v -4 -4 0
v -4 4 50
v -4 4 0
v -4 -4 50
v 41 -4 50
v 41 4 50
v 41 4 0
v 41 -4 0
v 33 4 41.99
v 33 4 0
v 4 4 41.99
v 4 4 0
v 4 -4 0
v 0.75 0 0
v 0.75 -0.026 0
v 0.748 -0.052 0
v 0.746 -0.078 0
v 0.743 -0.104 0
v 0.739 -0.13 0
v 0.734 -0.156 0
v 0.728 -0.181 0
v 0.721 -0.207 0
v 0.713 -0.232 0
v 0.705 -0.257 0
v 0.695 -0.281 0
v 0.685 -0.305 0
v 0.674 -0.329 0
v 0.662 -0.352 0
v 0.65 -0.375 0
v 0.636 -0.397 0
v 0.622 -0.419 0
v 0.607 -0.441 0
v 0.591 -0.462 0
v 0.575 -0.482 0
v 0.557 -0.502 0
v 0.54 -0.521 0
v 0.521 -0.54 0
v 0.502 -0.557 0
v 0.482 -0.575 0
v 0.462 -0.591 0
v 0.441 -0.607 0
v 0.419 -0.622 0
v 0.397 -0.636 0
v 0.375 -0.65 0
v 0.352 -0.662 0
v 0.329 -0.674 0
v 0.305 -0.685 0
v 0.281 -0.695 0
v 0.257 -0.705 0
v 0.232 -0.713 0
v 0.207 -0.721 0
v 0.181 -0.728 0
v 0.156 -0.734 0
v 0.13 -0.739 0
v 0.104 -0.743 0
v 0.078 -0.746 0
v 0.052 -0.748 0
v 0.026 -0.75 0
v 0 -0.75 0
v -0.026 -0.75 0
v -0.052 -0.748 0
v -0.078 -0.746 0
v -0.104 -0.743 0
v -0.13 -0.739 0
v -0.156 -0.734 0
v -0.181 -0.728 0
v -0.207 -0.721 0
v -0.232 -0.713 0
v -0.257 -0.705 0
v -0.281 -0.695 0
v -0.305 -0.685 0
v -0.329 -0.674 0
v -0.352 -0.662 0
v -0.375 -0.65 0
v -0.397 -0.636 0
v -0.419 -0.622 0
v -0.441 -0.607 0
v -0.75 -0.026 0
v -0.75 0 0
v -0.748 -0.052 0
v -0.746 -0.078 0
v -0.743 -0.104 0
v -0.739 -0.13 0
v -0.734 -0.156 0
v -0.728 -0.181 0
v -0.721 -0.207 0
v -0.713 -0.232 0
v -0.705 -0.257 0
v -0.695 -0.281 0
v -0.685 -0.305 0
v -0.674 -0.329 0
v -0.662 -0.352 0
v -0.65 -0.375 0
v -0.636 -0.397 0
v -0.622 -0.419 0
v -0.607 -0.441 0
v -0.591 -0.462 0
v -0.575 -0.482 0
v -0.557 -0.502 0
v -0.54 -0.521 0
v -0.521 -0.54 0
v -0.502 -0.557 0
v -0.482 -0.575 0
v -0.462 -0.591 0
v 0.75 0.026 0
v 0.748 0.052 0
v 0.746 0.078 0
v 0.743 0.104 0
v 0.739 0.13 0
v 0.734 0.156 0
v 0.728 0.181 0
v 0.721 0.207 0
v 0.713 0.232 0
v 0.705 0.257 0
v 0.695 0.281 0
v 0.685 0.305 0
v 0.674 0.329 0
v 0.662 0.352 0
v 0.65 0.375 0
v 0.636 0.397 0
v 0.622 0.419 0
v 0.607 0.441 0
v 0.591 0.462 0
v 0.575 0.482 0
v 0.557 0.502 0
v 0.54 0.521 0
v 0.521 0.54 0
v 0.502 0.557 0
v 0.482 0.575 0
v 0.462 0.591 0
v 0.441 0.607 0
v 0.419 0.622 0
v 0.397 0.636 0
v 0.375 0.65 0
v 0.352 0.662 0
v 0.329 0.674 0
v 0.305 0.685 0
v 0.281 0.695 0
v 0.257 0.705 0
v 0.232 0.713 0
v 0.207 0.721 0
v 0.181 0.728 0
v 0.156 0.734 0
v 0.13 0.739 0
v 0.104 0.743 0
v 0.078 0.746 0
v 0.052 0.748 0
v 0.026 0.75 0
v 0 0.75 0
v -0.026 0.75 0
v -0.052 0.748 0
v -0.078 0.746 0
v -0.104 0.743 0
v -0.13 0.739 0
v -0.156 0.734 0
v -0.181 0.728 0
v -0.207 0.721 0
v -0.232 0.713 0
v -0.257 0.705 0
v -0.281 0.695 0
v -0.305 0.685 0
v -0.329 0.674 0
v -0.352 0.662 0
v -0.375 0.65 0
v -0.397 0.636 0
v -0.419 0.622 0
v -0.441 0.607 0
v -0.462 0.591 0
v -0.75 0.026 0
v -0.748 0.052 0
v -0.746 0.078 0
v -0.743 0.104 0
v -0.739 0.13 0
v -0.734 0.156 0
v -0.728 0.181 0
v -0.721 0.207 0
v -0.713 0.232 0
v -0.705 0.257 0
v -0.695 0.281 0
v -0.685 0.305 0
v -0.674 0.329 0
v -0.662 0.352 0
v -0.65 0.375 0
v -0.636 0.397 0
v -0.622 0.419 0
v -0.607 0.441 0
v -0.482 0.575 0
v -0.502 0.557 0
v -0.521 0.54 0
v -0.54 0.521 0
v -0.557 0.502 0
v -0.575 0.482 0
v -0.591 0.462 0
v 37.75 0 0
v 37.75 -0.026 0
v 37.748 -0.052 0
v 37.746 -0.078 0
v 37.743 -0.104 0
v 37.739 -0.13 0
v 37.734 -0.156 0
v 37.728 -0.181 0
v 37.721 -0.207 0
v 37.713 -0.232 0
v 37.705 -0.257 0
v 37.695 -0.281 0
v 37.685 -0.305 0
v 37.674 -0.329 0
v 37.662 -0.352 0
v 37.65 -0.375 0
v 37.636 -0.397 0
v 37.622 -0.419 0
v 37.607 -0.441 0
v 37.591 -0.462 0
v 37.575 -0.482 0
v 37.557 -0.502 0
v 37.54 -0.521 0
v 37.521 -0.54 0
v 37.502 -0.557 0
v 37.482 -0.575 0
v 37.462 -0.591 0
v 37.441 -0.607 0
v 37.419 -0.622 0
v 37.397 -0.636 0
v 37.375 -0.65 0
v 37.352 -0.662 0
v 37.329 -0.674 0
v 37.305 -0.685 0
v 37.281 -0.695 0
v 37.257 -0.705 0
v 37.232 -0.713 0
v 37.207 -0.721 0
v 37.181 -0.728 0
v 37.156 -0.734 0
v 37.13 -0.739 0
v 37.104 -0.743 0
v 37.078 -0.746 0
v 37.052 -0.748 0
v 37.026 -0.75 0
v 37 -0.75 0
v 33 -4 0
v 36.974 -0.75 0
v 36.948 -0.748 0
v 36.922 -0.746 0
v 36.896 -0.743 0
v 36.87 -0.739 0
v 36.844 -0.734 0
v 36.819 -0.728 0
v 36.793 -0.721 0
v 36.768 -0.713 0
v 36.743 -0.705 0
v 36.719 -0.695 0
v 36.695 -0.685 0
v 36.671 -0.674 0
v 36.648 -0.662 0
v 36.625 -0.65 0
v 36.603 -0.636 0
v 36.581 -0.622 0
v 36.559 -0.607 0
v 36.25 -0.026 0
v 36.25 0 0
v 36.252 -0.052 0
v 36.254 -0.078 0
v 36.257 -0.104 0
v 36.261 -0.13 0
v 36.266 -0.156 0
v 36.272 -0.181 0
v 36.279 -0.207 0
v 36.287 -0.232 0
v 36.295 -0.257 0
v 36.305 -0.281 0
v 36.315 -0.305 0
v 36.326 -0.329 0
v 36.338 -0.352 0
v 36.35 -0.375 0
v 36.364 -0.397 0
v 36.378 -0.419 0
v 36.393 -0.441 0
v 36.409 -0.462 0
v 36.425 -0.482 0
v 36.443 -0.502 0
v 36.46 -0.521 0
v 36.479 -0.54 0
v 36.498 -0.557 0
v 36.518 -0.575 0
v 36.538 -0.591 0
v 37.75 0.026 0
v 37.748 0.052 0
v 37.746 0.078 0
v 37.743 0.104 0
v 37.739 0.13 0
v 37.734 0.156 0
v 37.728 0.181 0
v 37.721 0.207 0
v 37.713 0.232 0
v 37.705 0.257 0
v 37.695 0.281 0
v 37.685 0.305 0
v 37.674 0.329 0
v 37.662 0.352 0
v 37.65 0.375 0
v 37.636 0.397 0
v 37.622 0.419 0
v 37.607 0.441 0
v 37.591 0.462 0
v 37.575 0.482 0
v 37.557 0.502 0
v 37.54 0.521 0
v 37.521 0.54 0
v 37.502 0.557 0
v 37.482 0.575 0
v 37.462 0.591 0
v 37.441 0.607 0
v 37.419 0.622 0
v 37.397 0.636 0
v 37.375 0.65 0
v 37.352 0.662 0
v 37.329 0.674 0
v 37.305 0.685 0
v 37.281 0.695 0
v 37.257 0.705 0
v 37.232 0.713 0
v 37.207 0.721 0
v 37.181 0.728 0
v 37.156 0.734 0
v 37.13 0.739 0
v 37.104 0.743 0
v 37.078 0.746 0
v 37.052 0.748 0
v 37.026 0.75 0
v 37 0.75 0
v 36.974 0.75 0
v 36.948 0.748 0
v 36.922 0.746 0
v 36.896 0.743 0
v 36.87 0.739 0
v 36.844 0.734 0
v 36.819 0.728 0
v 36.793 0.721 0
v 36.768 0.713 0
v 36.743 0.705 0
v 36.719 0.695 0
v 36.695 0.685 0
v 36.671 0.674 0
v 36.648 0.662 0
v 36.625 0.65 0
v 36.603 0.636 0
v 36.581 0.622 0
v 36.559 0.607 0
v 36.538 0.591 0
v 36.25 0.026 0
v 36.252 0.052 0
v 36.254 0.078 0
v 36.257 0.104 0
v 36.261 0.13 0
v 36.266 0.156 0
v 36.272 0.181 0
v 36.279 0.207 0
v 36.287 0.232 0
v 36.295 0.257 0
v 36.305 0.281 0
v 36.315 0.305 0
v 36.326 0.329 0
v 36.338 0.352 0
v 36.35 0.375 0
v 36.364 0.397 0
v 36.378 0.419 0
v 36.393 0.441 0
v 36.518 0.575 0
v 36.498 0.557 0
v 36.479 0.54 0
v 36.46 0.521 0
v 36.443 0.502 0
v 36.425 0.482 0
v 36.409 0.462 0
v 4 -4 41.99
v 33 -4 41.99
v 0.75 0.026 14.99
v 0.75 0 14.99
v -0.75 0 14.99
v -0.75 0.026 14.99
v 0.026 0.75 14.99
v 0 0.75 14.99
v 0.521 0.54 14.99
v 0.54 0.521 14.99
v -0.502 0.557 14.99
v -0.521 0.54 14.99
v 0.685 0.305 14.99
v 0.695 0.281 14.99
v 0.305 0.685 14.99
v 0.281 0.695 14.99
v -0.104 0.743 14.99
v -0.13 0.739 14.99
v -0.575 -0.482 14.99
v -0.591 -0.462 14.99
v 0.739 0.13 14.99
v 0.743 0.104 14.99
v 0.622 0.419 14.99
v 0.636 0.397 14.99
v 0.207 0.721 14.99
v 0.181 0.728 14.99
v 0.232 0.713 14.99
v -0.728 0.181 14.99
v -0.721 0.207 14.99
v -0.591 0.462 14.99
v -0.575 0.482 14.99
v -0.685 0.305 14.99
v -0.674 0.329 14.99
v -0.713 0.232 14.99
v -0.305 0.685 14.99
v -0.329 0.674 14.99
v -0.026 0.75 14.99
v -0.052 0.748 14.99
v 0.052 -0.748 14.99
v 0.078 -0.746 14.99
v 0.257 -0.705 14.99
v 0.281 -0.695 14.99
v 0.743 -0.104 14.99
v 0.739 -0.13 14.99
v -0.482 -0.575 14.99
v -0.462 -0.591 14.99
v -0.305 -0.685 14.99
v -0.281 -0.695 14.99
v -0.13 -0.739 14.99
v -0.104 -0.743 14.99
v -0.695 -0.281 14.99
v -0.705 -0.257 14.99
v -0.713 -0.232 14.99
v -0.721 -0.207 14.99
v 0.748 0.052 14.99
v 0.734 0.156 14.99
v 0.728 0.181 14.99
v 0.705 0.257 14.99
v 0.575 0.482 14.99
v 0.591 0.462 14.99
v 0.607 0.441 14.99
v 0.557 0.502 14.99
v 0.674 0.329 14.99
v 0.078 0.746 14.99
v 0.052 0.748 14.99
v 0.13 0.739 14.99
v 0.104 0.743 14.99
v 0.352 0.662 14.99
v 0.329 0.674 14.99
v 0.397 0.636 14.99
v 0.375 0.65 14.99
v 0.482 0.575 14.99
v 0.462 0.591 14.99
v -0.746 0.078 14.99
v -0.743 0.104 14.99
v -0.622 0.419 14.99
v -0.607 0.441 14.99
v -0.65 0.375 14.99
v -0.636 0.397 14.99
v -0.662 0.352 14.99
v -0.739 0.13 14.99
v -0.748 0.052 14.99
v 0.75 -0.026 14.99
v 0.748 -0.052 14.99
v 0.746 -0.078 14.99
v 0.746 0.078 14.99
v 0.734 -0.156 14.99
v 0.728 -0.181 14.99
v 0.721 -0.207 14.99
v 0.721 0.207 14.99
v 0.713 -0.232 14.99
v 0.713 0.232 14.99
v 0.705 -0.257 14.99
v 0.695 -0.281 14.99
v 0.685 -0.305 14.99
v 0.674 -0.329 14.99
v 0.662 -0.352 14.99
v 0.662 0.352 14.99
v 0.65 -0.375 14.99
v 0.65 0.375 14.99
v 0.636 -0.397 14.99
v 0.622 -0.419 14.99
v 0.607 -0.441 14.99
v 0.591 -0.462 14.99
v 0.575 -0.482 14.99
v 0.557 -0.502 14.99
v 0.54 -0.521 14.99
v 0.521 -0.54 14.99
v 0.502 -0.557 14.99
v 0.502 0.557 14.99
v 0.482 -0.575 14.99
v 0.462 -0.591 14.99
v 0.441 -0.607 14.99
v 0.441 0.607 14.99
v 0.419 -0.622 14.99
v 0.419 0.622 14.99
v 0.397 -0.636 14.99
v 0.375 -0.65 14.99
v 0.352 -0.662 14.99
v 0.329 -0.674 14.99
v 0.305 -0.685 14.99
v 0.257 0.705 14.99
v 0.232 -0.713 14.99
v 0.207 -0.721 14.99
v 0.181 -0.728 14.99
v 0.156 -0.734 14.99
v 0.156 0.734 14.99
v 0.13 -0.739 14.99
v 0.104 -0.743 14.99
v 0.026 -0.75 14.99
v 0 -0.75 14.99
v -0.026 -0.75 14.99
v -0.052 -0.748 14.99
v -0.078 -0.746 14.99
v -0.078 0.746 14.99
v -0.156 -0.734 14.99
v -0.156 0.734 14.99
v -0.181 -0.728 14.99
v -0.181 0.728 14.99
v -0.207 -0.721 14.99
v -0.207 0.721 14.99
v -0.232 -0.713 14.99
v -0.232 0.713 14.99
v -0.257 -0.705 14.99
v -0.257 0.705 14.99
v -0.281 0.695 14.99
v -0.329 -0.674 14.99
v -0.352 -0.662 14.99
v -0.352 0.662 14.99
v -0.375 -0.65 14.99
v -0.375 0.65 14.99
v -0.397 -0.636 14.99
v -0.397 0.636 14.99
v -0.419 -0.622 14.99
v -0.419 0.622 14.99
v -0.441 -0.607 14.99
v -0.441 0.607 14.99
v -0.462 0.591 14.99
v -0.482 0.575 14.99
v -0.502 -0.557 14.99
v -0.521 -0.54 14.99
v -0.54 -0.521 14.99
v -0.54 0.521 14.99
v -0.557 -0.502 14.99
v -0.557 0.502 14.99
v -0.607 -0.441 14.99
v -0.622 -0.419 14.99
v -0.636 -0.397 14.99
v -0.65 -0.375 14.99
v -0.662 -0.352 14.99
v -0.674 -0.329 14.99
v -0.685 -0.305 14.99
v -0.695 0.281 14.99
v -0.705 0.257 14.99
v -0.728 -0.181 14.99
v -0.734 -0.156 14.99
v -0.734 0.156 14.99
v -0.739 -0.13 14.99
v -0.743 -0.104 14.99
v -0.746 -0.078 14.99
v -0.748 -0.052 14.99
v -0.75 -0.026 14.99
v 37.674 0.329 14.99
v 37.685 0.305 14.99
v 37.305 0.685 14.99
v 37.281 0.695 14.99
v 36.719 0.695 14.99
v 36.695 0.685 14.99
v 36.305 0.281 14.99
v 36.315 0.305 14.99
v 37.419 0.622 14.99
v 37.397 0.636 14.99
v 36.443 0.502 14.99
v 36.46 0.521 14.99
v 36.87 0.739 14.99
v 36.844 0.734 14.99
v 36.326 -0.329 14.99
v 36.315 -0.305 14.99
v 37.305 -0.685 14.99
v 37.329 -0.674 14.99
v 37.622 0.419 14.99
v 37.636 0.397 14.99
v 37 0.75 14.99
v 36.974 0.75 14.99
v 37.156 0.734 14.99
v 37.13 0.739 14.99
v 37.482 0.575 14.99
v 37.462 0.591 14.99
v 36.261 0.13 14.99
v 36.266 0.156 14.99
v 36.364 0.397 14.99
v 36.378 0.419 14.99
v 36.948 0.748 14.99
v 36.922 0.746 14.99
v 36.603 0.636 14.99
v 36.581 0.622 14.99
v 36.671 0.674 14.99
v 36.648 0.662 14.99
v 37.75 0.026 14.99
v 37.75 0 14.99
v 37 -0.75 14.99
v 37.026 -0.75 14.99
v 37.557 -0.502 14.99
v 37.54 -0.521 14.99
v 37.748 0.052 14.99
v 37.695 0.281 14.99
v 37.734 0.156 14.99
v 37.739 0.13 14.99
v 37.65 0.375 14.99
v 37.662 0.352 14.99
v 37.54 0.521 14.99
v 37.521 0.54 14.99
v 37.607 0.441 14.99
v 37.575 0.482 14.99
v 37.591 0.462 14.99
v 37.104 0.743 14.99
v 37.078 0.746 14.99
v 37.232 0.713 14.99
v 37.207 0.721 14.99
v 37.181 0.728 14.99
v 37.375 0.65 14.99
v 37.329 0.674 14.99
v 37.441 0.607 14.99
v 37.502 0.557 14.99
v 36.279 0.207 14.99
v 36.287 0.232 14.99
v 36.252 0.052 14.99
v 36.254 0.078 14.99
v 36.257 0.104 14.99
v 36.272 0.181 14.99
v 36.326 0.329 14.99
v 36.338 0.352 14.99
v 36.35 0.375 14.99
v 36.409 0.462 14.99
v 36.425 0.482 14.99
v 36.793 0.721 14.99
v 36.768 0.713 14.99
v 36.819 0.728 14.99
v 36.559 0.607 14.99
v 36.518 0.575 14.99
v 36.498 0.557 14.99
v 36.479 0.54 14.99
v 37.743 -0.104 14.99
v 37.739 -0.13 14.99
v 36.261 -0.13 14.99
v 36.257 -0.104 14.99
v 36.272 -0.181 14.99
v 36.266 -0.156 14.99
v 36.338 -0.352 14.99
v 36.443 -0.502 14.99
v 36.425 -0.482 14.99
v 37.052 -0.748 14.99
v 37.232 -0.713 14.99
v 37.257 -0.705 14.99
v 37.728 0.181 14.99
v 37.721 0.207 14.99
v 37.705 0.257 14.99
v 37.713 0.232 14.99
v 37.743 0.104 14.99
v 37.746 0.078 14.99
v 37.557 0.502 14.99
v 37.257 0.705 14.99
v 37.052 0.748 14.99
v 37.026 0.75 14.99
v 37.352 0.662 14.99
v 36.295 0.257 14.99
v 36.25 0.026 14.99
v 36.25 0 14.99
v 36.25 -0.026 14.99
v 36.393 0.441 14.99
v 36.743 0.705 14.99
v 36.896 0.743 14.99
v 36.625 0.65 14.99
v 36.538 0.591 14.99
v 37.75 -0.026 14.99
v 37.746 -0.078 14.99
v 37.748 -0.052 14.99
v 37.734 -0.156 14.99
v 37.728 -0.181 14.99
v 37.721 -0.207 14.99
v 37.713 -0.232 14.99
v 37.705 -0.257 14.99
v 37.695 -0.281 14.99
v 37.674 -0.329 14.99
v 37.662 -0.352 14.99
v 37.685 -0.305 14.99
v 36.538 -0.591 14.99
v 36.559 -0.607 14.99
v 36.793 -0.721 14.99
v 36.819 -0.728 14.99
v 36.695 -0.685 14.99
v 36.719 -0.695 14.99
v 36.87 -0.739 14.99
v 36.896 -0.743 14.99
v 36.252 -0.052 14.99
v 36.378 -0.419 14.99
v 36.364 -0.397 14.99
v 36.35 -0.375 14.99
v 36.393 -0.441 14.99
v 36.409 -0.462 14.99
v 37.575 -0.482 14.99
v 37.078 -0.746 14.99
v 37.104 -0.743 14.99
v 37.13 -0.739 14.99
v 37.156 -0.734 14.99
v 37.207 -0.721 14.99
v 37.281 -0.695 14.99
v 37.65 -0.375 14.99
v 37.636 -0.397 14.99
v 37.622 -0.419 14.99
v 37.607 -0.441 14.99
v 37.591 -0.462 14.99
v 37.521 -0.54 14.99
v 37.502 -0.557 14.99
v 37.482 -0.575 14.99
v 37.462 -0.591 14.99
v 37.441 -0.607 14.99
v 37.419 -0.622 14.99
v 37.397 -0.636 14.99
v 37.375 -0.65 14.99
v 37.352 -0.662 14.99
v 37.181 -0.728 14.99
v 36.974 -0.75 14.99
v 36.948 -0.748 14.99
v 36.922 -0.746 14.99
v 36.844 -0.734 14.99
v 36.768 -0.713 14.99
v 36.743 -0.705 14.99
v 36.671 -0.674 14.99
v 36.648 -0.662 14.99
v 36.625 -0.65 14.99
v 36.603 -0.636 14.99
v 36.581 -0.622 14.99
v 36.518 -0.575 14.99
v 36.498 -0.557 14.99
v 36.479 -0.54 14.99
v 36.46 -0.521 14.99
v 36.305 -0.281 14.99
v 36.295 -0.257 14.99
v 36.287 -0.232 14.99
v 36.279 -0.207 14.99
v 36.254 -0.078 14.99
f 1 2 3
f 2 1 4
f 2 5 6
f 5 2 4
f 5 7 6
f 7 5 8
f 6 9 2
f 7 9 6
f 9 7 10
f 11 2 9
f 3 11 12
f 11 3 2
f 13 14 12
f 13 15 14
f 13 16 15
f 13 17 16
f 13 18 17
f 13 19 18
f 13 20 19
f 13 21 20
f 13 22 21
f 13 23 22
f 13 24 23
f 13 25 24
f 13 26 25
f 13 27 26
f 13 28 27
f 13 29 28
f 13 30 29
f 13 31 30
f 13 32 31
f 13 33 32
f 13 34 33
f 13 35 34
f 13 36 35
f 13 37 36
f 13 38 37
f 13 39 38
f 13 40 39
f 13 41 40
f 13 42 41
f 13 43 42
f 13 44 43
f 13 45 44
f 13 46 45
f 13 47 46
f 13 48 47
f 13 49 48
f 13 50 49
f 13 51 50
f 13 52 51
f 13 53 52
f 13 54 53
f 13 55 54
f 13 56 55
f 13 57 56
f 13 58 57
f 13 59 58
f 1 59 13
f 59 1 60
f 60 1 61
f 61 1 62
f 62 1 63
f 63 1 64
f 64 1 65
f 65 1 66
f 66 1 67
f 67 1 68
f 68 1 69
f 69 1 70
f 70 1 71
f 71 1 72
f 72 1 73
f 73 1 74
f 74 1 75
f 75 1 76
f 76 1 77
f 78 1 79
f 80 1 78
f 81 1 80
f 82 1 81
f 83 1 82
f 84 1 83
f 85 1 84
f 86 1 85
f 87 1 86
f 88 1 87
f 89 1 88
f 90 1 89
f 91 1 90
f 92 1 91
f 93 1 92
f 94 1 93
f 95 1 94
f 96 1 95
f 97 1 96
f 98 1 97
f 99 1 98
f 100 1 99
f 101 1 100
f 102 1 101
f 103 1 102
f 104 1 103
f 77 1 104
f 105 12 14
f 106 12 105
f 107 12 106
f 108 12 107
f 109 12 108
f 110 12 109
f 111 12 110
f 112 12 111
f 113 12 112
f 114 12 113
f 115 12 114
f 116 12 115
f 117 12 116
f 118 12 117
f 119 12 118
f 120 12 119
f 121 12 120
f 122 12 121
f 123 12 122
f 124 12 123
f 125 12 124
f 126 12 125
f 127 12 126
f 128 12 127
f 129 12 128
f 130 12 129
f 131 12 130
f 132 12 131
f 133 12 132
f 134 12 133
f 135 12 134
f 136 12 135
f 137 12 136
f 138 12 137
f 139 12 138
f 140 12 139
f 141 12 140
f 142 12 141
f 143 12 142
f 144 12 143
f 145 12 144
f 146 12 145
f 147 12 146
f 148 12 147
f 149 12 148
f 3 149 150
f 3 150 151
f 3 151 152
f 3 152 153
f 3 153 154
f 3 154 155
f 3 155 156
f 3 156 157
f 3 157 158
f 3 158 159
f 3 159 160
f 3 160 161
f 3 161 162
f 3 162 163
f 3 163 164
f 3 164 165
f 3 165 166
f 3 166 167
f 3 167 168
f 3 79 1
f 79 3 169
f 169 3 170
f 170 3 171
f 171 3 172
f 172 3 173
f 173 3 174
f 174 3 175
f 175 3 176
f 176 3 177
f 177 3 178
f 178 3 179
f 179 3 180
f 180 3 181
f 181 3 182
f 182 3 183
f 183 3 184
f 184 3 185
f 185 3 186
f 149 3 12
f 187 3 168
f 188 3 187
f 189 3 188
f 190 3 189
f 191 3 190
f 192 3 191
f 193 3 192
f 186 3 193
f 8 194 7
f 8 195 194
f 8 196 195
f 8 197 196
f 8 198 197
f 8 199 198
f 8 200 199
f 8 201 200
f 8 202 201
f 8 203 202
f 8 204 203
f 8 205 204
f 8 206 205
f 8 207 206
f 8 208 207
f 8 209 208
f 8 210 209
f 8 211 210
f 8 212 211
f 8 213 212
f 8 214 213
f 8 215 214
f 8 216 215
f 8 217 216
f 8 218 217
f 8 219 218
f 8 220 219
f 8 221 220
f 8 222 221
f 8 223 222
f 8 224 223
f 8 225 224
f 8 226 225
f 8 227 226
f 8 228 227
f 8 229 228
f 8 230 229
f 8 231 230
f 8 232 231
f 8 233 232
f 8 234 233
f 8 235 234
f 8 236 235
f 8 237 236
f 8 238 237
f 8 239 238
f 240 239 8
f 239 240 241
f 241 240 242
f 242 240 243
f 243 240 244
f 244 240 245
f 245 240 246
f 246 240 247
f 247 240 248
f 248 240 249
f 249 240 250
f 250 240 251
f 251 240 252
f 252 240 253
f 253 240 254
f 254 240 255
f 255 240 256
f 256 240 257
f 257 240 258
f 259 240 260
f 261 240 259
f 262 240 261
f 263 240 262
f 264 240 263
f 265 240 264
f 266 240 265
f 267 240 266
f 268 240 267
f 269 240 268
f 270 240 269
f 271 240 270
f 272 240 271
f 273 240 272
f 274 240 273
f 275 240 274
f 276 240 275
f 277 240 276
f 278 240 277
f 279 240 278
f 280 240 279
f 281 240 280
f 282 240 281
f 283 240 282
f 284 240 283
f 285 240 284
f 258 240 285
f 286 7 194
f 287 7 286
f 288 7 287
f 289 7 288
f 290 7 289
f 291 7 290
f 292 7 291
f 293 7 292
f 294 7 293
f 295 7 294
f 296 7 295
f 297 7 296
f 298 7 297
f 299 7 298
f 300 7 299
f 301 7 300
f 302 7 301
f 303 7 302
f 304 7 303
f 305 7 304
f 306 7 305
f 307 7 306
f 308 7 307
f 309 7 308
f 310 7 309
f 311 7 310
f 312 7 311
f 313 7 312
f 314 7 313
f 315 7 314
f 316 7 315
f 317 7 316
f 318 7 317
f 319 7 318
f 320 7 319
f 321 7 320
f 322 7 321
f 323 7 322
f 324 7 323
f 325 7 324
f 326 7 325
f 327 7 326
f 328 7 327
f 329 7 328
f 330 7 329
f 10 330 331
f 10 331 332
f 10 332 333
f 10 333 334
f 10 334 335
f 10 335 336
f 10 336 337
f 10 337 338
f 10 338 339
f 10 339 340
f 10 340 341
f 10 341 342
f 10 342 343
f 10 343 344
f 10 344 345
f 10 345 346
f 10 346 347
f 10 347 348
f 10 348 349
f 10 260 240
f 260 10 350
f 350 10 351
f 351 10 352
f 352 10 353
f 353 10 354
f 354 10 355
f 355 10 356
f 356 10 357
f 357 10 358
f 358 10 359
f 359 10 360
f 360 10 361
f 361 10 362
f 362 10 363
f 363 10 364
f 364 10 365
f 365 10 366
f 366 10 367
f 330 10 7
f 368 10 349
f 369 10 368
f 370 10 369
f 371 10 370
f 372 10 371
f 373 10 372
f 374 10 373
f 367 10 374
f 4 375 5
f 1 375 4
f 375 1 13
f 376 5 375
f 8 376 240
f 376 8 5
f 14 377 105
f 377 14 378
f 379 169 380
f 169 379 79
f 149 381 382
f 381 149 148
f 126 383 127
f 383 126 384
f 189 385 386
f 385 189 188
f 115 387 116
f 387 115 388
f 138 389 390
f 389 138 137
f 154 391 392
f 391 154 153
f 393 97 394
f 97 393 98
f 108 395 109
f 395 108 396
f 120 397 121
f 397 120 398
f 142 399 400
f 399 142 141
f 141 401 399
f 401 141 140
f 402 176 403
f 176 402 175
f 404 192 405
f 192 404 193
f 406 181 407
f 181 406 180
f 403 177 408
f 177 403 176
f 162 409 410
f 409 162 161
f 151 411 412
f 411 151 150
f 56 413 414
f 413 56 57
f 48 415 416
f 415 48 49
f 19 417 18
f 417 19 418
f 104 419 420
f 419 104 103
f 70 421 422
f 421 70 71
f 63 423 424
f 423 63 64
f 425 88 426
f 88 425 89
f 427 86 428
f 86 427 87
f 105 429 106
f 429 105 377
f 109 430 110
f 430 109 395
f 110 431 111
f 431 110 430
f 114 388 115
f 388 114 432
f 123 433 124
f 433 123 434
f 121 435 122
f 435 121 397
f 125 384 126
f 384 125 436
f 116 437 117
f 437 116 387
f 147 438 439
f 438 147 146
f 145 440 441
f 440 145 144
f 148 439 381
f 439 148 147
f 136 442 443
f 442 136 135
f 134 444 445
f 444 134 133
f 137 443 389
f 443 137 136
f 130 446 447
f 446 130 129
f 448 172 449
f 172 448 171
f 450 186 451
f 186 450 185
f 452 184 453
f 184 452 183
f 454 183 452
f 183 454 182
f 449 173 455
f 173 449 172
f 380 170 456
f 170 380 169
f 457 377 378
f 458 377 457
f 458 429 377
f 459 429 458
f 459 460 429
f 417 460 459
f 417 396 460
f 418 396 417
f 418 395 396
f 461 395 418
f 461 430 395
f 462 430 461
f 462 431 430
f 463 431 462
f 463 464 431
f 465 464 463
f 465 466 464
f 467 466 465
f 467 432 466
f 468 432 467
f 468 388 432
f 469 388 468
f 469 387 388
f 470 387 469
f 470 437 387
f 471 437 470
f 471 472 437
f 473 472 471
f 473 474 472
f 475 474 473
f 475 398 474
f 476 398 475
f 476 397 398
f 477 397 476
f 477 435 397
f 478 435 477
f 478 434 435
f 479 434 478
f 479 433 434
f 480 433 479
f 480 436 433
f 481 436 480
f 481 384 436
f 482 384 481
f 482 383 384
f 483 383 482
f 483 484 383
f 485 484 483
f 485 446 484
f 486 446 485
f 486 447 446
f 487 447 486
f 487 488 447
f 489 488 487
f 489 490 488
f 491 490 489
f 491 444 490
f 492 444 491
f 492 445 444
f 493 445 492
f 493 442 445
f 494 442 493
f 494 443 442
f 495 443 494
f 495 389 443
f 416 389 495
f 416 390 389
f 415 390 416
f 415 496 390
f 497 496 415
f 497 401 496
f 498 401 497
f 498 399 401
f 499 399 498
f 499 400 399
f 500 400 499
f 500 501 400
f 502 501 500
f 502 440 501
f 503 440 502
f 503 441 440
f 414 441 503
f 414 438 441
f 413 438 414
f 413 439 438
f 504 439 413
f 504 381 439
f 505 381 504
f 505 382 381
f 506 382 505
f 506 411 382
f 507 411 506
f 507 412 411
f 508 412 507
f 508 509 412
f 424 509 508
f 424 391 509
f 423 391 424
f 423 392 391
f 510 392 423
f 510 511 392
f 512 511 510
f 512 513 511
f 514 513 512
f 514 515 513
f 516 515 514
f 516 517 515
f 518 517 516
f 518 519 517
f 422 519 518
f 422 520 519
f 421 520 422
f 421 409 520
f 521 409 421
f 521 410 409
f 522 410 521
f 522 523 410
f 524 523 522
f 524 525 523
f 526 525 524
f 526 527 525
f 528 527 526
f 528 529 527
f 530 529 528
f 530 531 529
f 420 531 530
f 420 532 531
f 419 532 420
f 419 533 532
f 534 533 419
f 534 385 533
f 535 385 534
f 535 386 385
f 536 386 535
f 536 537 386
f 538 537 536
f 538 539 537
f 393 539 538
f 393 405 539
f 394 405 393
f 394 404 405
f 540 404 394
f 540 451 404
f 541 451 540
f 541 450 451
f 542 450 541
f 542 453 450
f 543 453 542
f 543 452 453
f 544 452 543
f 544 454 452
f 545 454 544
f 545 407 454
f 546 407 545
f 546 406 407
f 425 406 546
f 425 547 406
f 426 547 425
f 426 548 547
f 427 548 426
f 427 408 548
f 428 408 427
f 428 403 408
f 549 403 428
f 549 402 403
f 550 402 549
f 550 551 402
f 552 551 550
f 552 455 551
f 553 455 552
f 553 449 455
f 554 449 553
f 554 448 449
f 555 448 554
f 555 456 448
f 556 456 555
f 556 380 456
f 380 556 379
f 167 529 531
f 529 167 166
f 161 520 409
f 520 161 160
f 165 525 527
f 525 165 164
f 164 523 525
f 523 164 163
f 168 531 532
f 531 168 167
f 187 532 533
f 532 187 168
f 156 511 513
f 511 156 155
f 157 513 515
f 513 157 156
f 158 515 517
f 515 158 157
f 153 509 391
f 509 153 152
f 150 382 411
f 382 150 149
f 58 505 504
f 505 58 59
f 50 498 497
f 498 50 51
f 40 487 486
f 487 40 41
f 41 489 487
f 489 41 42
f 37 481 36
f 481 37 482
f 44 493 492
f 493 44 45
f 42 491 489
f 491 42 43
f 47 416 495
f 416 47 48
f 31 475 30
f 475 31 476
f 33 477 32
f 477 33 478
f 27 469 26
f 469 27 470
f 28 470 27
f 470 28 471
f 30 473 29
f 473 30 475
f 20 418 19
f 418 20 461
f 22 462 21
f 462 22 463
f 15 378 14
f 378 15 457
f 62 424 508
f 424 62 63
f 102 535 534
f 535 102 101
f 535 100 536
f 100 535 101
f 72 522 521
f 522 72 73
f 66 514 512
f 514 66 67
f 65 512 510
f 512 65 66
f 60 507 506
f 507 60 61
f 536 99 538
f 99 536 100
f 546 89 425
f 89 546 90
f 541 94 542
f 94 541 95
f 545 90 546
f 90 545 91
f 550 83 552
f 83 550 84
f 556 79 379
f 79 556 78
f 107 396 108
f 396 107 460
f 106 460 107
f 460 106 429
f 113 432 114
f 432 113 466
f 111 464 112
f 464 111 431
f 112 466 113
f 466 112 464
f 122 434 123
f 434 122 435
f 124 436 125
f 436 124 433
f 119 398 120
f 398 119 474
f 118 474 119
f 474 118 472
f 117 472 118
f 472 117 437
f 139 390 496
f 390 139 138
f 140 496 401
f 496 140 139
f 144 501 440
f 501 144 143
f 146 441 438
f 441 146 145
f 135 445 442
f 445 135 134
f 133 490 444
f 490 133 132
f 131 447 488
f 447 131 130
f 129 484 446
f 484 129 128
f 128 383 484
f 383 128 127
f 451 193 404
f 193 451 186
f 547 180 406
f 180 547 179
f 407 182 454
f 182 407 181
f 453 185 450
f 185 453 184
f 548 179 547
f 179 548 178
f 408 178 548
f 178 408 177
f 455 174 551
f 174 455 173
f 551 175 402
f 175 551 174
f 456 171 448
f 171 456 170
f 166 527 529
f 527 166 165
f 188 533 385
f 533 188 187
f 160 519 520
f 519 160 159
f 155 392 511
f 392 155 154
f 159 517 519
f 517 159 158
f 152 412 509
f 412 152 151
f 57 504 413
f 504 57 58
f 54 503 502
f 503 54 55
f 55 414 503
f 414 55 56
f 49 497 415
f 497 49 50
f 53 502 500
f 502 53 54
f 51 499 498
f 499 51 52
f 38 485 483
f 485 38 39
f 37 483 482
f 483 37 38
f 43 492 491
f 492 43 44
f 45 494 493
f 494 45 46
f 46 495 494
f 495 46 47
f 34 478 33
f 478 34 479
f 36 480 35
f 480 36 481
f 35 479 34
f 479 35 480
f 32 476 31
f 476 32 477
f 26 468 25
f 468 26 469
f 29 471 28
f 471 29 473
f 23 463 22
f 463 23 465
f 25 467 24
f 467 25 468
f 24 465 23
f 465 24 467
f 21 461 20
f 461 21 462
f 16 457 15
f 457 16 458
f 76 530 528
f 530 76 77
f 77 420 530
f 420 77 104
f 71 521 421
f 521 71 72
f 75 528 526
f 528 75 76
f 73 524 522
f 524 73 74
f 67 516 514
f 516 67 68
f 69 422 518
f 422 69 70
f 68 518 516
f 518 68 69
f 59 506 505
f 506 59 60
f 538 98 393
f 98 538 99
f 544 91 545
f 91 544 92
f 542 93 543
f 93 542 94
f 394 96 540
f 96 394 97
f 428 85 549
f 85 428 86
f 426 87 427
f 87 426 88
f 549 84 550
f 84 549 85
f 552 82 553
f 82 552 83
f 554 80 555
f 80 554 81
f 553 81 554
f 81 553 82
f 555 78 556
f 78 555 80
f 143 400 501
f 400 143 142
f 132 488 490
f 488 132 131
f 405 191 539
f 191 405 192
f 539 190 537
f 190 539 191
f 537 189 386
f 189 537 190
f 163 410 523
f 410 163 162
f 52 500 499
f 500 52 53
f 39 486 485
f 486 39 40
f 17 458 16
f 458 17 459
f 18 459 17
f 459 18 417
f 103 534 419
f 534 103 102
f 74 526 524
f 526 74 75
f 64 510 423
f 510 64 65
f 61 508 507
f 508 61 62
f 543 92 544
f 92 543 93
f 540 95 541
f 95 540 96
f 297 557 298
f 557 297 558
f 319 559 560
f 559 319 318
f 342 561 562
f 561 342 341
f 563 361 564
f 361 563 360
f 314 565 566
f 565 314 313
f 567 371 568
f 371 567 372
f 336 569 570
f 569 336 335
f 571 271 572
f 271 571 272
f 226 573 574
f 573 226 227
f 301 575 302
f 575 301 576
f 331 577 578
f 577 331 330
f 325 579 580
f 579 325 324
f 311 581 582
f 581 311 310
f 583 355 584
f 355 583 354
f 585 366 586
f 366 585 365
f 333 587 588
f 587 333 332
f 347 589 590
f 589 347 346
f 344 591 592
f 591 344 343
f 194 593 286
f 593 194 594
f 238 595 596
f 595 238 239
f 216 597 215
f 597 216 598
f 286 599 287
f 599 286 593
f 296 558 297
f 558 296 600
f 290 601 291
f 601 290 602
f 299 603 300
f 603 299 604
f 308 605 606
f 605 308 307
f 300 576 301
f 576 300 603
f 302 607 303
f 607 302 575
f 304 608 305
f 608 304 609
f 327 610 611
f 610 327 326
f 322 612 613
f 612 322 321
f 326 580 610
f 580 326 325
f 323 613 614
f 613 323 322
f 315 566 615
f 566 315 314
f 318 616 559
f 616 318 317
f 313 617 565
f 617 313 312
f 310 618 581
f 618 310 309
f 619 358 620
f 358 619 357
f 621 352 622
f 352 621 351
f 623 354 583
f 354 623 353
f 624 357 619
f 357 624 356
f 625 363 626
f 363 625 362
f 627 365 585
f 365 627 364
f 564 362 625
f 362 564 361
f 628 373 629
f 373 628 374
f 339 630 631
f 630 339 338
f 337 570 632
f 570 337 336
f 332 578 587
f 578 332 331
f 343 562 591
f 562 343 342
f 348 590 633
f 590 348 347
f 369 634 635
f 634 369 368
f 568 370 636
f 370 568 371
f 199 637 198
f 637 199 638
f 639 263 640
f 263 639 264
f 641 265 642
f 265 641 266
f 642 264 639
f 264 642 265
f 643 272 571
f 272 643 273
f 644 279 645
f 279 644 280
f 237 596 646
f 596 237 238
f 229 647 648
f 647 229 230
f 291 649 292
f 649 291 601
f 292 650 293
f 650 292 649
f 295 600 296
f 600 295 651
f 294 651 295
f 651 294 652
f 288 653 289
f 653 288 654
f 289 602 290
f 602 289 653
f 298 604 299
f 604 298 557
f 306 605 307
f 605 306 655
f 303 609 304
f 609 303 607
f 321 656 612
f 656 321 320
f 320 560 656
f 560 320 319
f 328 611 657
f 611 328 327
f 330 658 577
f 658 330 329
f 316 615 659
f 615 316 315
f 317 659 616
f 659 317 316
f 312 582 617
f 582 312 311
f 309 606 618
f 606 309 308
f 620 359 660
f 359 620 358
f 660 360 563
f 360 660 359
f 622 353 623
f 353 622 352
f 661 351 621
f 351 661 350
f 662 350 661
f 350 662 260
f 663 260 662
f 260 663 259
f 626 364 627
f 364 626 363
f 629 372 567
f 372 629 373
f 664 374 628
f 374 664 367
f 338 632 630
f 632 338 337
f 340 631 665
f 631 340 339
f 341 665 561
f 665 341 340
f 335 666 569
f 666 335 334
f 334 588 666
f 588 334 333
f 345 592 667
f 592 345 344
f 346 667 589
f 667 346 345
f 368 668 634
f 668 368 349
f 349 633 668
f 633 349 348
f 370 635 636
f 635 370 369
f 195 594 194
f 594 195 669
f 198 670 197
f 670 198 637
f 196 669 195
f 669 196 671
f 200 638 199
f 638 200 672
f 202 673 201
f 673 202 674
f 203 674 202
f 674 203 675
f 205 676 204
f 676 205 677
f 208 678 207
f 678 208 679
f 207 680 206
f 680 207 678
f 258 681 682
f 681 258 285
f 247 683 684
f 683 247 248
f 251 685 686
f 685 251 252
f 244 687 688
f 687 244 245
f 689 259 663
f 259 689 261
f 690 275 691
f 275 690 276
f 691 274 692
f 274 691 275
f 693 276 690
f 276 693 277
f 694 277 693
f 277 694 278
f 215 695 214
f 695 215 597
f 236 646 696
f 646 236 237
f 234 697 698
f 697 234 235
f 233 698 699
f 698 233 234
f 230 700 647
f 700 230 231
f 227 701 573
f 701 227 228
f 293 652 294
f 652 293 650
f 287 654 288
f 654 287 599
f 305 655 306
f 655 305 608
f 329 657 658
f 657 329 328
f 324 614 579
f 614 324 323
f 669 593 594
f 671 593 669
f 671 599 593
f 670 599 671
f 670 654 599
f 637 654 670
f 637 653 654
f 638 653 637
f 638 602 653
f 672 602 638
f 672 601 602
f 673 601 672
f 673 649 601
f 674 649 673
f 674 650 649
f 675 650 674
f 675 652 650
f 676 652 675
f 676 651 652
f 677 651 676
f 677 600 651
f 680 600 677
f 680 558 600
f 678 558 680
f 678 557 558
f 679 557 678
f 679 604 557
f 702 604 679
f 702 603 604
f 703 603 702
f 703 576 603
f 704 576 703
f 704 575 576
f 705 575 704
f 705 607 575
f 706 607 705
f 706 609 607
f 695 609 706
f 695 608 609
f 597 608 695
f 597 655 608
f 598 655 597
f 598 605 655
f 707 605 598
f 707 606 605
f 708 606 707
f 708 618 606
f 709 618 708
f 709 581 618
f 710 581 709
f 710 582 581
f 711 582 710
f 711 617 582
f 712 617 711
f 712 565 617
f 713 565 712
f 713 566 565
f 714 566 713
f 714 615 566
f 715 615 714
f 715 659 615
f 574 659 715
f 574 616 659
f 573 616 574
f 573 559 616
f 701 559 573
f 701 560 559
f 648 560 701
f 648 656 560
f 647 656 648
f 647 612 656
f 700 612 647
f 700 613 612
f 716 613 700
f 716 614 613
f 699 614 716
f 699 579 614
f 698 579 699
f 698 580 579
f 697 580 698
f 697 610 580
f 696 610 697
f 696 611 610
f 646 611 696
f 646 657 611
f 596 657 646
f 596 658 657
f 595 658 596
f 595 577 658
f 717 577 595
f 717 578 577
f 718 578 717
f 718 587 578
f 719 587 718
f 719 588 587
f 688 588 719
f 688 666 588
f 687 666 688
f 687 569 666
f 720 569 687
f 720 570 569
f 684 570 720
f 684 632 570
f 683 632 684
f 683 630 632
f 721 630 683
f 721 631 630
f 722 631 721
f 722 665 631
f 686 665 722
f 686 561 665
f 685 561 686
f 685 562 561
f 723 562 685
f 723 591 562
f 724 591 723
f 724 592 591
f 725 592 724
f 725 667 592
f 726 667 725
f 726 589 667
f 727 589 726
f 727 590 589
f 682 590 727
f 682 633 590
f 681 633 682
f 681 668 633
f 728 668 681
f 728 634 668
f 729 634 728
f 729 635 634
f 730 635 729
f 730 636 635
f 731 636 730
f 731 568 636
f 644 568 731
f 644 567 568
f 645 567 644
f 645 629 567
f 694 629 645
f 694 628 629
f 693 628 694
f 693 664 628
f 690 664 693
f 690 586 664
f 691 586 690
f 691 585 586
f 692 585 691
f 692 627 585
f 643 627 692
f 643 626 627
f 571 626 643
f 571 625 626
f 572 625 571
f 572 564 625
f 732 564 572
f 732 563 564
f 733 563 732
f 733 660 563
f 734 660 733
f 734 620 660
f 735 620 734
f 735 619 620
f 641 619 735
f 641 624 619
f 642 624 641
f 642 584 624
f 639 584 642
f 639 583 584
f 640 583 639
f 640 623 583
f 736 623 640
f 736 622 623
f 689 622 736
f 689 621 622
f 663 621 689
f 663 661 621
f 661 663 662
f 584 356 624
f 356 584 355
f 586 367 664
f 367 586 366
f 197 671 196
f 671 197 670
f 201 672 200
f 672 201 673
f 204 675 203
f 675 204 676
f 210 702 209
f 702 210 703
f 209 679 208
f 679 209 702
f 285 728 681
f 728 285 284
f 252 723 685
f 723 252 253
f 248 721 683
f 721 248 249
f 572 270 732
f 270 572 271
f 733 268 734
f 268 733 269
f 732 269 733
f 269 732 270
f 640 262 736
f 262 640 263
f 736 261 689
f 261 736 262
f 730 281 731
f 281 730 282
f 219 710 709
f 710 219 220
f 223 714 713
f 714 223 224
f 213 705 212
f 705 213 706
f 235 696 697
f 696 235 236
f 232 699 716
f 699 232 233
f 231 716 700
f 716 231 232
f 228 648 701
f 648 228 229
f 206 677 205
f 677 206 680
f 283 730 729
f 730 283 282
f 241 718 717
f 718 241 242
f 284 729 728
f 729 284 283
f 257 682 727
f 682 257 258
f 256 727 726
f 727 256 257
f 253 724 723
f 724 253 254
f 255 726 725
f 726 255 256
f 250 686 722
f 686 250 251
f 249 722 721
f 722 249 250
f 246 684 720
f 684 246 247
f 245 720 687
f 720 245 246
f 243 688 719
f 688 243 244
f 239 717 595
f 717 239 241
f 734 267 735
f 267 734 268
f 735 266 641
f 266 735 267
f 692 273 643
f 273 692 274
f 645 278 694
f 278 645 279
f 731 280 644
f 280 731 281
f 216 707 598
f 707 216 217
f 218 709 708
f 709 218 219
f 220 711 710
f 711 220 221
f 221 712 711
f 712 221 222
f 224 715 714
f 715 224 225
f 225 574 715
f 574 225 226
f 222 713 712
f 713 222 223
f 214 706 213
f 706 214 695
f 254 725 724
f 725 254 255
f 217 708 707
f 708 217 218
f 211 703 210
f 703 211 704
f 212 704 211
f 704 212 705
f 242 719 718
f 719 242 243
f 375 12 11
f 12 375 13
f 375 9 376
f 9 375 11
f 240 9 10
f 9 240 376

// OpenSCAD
$fn = $preview ? 24 : 180;

    margin          = 0.01;

    poot_d          = 8;
    gat_h           = 42;
    object_h        = gat_h+poot_d;
    gat_x           = 29;
    object_x        = gat_x+ 2* poot_d;

    gat_afstand     = object_x - (2 * poot_d / 2);  //= 47-9=38

difference(){
    translate([-poot_d/2,-poot_d/2,0])cube([object_x,poot_d,object_h]);
    translate([0,0,-margin])cylinder(h=15,d=1.5);
    translate([gat_afstand,0,-margin])cylinder(h=15,d=1.5);   
    translate([poot_d/2,-poot_d/2-margin,-margin])cube([gat_x,poot_d+1,gat_h]);
};
